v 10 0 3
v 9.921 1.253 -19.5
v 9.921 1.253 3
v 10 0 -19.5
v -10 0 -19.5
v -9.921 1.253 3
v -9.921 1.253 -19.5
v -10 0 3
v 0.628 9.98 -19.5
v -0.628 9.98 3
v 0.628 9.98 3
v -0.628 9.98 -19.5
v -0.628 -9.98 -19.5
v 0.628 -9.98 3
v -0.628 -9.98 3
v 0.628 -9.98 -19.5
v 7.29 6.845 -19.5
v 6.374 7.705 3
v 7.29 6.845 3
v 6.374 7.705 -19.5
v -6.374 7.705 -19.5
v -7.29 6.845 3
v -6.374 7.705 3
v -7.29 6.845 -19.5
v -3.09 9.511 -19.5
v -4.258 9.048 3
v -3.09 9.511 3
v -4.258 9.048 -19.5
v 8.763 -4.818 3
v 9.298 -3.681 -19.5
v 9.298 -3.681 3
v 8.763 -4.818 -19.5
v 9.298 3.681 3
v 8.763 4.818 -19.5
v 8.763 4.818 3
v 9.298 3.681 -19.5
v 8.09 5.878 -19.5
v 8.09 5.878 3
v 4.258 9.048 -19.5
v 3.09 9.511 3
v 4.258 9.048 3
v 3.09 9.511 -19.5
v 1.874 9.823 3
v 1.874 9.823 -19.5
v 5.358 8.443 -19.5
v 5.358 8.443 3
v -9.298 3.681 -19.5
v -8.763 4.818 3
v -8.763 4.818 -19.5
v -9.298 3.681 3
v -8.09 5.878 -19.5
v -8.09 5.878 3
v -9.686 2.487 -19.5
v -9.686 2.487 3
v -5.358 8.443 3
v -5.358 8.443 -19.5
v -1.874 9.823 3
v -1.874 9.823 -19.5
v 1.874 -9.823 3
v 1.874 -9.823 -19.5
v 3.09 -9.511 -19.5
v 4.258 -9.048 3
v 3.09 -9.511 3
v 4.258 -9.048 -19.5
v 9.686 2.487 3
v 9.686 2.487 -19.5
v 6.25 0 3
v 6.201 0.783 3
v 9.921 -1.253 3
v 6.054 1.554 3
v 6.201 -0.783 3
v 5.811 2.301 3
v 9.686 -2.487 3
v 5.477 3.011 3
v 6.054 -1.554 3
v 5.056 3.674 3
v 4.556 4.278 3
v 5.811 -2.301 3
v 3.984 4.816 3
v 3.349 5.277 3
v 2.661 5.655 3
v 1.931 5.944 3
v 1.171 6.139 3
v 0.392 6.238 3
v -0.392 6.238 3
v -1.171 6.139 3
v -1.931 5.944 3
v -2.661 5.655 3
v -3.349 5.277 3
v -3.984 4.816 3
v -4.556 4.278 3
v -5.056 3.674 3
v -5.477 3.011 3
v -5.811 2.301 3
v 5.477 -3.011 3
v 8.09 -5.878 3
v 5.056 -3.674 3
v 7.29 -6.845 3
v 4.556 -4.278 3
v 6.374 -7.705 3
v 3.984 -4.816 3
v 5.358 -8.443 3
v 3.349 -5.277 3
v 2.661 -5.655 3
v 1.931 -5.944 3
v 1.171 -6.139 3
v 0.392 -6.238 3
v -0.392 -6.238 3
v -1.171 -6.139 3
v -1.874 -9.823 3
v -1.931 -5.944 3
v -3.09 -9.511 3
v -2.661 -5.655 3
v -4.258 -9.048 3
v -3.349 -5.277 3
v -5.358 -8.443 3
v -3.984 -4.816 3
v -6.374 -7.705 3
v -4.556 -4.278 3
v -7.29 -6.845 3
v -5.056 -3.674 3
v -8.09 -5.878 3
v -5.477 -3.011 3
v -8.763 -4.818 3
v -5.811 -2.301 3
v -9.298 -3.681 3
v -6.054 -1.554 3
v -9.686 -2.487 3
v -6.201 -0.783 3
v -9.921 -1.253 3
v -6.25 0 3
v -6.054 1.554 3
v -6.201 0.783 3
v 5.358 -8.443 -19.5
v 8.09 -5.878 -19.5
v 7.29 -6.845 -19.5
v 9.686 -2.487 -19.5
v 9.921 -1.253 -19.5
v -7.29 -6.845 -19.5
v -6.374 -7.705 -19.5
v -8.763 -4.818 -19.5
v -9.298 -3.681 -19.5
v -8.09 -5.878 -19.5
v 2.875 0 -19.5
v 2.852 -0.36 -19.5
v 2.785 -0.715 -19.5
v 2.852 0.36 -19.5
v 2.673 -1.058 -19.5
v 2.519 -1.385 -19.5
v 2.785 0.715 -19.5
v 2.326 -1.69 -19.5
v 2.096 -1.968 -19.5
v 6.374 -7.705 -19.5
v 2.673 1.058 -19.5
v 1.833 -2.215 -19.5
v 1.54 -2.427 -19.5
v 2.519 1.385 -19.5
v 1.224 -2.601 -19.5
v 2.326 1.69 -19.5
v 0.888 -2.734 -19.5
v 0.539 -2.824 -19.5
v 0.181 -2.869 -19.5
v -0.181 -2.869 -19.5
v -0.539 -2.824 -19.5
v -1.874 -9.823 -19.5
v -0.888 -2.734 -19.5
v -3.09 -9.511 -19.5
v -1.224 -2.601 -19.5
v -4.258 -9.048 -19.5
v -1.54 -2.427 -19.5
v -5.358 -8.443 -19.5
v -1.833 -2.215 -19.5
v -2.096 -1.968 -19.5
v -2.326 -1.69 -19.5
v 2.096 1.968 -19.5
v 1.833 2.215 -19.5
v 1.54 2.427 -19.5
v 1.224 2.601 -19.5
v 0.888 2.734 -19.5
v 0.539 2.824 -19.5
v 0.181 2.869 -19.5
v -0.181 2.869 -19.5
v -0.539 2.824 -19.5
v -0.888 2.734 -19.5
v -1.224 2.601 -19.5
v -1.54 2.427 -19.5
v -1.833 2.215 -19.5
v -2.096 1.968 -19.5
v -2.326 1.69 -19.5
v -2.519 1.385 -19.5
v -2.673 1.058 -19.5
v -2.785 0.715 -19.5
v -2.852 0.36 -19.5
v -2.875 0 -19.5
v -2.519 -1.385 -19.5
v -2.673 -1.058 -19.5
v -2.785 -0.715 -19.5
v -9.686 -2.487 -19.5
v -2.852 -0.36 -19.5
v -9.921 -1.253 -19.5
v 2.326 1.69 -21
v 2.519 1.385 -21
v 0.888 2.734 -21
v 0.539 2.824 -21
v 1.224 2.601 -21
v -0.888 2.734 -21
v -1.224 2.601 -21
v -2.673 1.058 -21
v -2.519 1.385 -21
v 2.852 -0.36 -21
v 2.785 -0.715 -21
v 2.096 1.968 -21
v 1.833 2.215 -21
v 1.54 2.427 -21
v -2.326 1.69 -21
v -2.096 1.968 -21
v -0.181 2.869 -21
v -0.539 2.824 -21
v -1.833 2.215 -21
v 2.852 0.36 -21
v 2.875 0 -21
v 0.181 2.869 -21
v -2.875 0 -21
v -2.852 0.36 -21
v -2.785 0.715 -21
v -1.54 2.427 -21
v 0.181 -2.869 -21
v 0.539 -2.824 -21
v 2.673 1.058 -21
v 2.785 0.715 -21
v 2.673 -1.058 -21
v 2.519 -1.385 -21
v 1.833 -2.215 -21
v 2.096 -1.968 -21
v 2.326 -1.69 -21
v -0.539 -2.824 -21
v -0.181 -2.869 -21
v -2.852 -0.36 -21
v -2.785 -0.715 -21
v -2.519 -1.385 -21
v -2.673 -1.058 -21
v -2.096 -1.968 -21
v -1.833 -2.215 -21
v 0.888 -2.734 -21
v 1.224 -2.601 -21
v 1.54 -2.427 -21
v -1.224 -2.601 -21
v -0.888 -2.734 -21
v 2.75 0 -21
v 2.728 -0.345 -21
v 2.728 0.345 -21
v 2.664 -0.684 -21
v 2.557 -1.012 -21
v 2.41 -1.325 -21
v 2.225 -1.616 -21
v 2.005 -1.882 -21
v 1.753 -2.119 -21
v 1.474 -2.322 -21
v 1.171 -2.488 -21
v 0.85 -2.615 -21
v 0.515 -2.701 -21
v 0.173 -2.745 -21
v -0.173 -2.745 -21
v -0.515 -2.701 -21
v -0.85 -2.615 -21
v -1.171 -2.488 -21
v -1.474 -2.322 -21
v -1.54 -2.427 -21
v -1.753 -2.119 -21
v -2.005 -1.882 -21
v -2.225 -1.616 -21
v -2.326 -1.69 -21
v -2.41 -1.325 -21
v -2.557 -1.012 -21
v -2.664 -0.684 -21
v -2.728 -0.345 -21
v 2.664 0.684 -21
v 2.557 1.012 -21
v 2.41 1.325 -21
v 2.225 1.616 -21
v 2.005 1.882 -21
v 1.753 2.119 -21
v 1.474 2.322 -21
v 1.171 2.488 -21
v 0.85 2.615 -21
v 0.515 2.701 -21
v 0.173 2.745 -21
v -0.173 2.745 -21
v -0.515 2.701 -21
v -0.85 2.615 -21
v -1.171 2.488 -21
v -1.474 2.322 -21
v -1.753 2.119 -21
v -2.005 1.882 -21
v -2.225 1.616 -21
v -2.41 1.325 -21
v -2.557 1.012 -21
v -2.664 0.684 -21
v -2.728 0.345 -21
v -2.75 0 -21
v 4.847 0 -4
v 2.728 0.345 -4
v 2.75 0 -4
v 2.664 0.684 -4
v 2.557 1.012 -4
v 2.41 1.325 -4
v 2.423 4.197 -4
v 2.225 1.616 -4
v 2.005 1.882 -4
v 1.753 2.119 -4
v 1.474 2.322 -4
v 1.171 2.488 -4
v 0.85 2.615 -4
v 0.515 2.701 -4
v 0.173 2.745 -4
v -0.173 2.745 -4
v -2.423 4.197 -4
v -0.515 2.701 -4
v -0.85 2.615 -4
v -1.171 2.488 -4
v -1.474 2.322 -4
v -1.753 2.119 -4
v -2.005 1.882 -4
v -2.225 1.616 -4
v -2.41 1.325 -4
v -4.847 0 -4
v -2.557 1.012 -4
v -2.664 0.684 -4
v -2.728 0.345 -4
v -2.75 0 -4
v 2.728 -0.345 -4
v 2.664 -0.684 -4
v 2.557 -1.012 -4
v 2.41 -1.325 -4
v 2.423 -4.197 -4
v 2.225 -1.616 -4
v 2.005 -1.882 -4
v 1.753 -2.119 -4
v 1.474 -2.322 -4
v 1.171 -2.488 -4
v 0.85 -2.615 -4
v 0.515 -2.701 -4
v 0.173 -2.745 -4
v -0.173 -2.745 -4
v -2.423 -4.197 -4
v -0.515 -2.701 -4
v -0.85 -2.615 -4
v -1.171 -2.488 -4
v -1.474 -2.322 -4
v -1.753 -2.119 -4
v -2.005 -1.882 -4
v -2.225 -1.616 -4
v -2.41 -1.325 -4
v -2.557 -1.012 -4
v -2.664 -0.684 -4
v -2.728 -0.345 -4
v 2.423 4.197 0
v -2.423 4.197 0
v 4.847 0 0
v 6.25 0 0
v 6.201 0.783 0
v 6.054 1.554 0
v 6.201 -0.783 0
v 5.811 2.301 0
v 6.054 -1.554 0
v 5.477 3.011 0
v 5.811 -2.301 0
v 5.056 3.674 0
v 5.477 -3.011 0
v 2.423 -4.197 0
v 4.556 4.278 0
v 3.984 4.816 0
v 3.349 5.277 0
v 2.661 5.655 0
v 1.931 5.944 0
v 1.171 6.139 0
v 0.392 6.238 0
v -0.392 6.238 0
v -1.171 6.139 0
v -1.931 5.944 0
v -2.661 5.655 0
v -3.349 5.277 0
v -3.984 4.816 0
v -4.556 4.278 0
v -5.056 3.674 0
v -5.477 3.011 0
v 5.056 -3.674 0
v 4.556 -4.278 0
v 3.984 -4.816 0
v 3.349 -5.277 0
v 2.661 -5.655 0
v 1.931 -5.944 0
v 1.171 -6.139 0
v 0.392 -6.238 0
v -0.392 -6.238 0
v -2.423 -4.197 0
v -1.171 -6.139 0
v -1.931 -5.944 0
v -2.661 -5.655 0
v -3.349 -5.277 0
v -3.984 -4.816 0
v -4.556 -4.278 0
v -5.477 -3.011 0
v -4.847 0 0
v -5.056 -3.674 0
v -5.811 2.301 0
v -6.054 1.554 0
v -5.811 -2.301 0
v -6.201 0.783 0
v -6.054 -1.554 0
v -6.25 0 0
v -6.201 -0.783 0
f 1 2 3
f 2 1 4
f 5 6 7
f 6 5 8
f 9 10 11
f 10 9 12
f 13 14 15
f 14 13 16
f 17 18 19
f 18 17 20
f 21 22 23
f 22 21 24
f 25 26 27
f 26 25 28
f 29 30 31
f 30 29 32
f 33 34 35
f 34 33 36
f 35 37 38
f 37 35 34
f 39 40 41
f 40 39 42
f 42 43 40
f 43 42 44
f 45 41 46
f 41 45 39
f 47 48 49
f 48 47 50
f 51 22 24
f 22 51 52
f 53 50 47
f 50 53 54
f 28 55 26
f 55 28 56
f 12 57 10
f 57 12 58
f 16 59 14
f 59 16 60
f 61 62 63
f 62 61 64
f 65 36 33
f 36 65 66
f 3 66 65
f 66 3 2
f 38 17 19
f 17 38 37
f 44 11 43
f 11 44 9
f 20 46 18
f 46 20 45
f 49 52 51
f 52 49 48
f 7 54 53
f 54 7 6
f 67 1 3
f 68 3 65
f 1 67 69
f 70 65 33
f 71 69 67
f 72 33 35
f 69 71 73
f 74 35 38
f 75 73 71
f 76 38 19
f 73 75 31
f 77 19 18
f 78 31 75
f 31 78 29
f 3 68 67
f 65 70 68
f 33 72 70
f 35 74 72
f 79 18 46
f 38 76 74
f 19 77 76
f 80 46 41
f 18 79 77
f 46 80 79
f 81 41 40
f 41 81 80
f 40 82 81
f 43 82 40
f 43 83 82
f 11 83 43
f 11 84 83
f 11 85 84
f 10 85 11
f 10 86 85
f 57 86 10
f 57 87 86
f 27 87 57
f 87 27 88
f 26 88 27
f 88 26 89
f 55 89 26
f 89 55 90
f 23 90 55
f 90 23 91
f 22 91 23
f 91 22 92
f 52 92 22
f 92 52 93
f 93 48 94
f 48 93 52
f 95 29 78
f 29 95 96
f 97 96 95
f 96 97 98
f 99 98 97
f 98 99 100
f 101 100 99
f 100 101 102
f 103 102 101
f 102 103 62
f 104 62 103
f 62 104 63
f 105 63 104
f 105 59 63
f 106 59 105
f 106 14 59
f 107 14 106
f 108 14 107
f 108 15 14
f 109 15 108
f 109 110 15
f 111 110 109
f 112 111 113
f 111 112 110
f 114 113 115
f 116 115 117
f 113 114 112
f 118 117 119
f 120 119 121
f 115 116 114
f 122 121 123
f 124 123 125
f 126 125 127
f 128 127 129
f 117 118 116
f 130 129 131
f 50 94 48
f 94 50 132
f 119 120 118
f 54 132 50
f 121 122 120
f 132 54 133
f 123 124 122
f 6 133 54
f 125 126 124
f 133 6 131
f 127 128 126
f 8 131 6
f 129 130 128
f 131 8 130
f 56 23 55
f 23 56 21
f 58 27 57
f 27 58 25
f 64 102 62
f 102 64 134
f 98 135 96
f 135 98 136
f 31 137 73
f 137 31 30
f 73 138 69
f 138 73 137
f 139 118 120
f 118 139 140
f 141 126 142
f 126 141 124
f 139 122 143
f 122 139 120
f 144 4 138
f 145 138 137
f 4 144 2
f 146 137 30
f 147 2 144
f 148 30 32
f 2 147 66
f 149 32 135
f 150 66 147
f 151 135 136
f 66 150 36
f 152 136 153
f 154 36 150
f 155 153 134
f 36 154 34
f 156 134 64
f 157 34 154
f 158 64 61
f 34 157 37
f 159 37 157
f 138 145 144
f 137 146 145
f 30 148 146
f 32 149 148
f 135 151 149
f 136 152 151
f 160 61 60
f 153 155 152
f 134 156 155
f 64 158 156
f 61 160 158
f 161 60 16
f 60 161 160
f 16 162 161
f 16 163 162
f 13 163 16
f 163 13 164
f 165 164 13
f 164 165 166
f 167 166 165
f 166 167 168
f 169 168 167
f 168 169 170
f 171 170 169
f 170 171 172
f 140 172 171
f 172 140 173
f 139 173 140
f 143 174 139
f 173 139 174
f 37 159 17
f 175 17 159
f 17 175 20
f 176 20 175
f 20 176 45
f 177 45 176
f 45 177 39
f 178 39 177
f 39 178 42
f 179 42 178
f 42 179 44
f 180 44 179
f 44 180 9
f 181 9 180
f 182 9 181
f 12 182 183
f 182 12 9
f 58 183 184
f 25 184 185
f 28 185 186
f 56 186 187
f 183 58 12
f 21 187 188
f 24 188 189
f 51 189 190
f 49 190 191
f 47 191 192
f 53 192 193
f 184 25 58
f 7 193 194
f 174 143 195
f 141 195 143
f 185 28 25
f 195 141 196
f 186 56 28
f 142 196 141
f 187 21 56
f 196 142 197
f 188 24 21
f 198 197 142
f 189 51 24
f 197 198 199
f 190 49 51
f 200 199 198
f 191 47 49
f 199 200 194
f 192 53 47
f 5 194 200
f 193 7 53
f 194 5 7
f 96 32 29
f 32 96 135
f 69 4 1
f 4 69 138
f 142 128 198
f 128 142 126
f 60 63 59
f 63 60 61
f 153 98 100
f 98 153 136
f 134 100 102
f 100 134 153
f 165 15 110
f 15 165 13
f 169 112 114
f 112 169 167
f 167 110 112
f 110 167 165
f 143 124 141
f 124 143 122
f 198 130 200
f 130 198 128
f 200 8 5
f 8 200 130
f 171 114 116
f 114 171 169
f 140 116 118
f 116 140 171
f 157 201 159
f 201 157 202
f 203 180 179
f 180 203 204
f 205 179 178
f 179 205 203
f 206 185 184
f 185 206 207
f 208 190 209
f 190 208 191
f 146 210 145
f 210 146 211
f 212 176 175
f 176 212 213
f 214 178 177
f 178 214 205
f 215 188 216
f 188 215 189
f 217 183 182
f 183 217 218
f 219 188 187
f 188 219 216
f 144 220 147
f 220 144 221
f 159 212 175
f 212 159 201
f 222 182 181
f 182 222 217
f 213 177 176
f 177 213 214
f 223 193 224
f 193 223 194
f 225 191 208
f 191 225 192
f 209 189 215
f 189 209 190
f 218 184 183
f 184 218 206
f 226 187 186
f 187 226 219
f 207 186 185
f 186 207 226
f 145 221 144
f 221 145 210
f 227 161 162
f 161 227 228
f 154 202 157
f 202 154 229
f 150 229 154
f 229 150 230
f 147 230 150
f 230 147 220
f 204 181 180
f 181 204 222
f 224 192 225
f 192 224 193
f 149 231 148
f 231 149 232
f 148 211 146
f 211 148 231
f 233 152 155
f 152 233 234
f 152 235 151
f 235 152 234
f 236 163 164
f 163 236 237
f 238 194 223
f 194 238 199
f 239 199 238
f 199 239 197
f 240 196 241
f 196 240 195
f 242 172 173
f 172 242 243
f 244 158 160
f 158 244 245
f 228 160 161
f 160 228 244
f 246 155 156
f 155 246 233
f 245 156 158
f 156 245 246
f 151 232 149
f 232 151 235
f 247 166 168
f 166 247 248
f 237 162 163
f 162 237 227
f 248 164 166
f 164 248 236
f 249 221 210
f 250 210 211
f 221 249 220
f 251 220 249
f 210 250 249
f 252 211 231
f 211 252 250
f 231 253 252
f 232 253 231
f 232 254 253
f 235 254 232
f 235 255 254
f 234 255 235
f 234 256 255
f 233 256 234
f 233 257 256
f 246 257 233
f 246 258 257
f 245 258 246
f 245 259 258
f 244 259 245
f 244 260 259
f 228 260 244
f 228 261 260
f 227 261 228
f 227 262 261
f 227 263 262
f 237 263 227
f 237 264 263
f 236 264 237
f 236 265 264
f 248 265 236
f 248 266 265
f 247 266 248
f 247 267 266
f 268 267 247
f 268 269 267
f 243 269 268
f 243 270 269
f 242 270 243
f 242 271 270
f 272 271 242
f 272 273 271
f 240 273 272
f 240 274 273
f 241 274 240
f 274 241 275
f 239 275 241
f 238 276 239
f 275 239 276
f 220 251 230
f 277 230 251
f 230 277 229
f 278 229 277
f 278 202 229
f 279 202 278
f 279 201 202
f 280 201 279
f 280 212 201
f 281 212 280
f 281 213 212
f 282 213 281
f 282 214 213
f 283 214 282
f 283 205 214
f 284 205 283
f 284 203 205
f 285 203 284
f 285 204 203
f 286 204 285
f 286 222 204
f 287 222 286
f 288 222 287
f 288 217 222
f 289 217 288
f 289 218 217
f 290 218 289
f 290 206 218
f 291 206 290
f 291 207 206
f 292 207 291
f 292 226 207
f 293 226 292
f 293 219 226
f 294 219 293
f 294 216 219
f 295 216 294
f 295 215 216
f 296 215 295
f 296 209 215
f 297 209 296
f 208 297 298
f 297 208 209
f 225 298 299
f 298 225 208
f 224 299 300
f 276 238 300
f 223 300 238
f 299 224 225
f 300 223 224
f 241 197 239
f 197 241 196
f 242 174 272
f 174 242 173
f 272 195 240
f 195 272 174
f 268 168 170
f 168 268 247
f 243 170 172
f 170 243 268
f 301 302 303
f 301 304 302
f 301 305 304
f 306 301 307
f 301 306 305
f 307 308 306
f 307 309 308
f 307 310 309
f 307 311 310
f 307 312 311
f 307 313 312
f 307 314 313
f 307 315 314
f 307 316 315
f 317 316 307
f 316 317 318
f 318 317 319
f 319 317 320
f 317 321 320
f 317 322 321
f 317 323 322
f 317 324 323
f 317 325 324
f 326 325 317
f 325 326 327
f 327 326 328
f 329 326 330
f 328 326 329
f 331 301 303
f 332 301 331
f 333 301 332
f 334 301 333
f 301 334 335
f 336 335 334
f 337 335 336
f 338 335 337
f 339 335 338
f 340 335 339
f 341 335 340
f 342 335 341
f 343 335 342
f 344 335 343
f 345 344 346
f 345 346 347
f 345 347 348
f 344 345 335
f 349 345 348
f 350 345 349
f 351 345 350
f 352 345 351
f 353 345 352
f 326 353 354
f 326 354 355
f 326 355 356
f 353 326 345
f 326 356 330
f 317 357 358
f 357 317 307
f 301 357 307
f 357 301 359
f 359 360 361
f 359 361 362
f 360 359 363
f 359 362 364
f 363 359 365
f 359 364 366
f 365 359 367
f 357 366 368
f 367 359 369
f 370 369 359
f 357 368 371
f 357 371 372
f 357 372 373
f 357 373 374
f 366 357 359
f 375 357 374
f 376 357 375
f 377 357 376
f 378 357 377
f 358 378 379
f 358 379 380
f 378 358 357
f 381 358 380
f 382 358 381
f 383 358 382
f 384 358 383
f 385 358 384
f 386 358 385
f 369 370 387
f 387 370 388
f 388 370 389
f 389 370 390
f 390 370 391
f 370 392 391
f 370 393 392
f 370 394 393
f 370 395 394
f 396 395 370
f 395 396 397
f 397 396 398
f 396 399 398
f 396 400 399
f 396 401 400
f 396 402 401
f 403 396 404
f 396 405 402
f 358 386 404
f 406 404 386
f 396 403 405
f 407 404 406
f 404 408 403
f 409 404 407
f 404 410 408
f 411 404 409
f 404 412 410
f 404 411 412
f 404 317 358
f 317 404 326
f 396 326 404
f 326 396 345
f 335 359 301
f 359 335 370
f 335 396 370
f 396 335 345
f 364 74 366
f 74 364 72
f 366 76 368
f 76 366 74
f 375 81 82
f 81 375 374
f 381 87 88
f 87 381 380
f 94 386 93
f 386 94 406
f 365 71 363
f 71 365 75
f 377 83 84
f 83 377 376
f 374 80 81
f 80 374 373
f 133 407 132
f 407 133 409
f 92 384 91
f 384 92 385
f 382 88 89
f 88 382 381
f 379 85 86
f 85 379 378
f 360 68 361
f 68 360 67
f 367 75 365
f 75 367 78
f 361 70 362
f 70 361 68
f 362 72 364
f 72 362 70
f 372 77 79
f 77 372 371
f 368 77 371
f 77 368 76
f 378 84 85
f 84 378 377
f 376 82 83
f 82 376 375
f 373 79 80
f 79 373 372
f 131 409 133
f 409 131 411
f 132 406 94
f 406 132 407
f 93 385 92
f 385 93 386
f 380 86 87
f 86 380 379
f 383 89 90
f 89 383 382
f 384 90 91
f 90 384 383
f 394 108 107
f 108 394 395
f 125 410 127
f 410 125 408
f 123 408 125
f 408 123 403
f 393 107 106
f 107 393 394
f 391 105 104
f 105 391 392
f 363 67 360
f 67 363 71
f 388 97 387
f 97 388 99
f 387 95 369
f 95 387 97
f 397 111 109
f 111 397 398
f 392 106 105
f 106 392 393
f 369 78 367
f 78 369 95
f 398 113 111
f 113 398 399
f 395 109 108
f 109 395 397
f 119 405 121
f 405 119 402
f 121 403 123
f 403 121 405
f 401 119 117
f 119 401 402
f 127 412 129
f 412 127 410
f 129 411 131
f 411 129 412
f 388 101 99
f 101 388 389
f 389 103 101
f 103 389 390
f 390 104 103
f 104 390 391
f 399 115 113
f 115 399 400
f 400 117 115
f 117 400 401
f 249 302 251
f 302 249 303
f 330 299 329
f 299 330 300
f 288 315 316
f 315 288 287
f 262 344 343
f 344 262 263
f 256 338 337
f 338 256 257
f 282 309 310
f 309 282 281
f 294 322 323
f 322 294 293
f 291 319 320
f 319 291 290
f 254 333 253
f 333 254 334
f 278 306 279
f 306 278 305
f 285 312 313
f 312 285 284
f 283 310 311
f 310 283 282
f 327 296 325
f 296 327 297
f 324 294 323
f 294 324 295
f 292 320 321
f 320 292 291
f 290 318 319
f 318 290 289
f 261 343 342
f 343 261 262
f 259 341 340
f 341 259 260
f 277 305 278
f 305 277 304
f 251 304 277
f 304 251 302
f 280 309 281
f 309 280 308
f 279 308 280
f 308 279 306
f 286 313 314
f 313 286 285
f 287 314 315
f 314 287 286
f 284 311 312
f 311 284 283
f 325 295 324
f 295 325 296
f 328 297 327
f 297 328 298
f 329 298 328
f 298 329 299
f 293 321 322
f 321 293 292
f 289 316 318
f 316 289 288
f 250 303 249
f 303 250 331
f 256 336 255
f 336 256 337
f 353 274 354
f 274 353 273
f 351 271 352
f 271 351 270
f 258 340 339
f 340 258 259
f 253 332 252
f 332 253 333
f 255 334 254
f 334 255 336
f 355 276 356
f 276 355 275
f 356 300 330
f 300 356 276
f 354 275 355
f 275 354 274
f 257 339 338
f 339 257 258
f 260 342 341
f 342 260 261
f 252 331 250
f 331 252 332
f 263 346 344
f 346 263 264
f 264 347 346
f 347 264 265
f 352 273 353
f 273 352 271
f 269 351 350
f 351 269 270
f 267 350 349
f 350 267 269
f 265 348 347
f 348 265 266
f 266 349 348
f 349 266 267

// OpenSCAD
$fn = 50;


difference() {
	union() {
		translate(v = [0, 0, -19.5000000000]) {
			cylinder(h = 22.5000000000, r = 10.0000000000);
		}
		#translate(v = [0, 0, -21.0000000000]) {
			cylinder(h = 21, r = 2.8750000000);
		}
	}
	union() {
		translate(v = [0, 0, 0]) {
			rotate(a = [0, 0, 0]) {
				difference() {
					union() {
						translate(v = [0, 0, -4]) {
							linear_extrude(height = 4) {
								polygon(points = [[4.8468000000, 0.0000000000], [2.4234000000, 4.1974519271], [-2.4234000000, 4.1974519271], [-4.8468000000, 0.0000000000], [-2.4234000000, -4.1974519271], [2.4234000000, -4.1974519271]]);
							}
						}
					}
					union();
				}
			}
		}
		#cylinder(h = 3, r = 6.2500000000);
		#translate(v = [0, 0, -100.0000000000]) {
			cylinder(h = 200, r = 2.7500000000);
		}
	}
}
